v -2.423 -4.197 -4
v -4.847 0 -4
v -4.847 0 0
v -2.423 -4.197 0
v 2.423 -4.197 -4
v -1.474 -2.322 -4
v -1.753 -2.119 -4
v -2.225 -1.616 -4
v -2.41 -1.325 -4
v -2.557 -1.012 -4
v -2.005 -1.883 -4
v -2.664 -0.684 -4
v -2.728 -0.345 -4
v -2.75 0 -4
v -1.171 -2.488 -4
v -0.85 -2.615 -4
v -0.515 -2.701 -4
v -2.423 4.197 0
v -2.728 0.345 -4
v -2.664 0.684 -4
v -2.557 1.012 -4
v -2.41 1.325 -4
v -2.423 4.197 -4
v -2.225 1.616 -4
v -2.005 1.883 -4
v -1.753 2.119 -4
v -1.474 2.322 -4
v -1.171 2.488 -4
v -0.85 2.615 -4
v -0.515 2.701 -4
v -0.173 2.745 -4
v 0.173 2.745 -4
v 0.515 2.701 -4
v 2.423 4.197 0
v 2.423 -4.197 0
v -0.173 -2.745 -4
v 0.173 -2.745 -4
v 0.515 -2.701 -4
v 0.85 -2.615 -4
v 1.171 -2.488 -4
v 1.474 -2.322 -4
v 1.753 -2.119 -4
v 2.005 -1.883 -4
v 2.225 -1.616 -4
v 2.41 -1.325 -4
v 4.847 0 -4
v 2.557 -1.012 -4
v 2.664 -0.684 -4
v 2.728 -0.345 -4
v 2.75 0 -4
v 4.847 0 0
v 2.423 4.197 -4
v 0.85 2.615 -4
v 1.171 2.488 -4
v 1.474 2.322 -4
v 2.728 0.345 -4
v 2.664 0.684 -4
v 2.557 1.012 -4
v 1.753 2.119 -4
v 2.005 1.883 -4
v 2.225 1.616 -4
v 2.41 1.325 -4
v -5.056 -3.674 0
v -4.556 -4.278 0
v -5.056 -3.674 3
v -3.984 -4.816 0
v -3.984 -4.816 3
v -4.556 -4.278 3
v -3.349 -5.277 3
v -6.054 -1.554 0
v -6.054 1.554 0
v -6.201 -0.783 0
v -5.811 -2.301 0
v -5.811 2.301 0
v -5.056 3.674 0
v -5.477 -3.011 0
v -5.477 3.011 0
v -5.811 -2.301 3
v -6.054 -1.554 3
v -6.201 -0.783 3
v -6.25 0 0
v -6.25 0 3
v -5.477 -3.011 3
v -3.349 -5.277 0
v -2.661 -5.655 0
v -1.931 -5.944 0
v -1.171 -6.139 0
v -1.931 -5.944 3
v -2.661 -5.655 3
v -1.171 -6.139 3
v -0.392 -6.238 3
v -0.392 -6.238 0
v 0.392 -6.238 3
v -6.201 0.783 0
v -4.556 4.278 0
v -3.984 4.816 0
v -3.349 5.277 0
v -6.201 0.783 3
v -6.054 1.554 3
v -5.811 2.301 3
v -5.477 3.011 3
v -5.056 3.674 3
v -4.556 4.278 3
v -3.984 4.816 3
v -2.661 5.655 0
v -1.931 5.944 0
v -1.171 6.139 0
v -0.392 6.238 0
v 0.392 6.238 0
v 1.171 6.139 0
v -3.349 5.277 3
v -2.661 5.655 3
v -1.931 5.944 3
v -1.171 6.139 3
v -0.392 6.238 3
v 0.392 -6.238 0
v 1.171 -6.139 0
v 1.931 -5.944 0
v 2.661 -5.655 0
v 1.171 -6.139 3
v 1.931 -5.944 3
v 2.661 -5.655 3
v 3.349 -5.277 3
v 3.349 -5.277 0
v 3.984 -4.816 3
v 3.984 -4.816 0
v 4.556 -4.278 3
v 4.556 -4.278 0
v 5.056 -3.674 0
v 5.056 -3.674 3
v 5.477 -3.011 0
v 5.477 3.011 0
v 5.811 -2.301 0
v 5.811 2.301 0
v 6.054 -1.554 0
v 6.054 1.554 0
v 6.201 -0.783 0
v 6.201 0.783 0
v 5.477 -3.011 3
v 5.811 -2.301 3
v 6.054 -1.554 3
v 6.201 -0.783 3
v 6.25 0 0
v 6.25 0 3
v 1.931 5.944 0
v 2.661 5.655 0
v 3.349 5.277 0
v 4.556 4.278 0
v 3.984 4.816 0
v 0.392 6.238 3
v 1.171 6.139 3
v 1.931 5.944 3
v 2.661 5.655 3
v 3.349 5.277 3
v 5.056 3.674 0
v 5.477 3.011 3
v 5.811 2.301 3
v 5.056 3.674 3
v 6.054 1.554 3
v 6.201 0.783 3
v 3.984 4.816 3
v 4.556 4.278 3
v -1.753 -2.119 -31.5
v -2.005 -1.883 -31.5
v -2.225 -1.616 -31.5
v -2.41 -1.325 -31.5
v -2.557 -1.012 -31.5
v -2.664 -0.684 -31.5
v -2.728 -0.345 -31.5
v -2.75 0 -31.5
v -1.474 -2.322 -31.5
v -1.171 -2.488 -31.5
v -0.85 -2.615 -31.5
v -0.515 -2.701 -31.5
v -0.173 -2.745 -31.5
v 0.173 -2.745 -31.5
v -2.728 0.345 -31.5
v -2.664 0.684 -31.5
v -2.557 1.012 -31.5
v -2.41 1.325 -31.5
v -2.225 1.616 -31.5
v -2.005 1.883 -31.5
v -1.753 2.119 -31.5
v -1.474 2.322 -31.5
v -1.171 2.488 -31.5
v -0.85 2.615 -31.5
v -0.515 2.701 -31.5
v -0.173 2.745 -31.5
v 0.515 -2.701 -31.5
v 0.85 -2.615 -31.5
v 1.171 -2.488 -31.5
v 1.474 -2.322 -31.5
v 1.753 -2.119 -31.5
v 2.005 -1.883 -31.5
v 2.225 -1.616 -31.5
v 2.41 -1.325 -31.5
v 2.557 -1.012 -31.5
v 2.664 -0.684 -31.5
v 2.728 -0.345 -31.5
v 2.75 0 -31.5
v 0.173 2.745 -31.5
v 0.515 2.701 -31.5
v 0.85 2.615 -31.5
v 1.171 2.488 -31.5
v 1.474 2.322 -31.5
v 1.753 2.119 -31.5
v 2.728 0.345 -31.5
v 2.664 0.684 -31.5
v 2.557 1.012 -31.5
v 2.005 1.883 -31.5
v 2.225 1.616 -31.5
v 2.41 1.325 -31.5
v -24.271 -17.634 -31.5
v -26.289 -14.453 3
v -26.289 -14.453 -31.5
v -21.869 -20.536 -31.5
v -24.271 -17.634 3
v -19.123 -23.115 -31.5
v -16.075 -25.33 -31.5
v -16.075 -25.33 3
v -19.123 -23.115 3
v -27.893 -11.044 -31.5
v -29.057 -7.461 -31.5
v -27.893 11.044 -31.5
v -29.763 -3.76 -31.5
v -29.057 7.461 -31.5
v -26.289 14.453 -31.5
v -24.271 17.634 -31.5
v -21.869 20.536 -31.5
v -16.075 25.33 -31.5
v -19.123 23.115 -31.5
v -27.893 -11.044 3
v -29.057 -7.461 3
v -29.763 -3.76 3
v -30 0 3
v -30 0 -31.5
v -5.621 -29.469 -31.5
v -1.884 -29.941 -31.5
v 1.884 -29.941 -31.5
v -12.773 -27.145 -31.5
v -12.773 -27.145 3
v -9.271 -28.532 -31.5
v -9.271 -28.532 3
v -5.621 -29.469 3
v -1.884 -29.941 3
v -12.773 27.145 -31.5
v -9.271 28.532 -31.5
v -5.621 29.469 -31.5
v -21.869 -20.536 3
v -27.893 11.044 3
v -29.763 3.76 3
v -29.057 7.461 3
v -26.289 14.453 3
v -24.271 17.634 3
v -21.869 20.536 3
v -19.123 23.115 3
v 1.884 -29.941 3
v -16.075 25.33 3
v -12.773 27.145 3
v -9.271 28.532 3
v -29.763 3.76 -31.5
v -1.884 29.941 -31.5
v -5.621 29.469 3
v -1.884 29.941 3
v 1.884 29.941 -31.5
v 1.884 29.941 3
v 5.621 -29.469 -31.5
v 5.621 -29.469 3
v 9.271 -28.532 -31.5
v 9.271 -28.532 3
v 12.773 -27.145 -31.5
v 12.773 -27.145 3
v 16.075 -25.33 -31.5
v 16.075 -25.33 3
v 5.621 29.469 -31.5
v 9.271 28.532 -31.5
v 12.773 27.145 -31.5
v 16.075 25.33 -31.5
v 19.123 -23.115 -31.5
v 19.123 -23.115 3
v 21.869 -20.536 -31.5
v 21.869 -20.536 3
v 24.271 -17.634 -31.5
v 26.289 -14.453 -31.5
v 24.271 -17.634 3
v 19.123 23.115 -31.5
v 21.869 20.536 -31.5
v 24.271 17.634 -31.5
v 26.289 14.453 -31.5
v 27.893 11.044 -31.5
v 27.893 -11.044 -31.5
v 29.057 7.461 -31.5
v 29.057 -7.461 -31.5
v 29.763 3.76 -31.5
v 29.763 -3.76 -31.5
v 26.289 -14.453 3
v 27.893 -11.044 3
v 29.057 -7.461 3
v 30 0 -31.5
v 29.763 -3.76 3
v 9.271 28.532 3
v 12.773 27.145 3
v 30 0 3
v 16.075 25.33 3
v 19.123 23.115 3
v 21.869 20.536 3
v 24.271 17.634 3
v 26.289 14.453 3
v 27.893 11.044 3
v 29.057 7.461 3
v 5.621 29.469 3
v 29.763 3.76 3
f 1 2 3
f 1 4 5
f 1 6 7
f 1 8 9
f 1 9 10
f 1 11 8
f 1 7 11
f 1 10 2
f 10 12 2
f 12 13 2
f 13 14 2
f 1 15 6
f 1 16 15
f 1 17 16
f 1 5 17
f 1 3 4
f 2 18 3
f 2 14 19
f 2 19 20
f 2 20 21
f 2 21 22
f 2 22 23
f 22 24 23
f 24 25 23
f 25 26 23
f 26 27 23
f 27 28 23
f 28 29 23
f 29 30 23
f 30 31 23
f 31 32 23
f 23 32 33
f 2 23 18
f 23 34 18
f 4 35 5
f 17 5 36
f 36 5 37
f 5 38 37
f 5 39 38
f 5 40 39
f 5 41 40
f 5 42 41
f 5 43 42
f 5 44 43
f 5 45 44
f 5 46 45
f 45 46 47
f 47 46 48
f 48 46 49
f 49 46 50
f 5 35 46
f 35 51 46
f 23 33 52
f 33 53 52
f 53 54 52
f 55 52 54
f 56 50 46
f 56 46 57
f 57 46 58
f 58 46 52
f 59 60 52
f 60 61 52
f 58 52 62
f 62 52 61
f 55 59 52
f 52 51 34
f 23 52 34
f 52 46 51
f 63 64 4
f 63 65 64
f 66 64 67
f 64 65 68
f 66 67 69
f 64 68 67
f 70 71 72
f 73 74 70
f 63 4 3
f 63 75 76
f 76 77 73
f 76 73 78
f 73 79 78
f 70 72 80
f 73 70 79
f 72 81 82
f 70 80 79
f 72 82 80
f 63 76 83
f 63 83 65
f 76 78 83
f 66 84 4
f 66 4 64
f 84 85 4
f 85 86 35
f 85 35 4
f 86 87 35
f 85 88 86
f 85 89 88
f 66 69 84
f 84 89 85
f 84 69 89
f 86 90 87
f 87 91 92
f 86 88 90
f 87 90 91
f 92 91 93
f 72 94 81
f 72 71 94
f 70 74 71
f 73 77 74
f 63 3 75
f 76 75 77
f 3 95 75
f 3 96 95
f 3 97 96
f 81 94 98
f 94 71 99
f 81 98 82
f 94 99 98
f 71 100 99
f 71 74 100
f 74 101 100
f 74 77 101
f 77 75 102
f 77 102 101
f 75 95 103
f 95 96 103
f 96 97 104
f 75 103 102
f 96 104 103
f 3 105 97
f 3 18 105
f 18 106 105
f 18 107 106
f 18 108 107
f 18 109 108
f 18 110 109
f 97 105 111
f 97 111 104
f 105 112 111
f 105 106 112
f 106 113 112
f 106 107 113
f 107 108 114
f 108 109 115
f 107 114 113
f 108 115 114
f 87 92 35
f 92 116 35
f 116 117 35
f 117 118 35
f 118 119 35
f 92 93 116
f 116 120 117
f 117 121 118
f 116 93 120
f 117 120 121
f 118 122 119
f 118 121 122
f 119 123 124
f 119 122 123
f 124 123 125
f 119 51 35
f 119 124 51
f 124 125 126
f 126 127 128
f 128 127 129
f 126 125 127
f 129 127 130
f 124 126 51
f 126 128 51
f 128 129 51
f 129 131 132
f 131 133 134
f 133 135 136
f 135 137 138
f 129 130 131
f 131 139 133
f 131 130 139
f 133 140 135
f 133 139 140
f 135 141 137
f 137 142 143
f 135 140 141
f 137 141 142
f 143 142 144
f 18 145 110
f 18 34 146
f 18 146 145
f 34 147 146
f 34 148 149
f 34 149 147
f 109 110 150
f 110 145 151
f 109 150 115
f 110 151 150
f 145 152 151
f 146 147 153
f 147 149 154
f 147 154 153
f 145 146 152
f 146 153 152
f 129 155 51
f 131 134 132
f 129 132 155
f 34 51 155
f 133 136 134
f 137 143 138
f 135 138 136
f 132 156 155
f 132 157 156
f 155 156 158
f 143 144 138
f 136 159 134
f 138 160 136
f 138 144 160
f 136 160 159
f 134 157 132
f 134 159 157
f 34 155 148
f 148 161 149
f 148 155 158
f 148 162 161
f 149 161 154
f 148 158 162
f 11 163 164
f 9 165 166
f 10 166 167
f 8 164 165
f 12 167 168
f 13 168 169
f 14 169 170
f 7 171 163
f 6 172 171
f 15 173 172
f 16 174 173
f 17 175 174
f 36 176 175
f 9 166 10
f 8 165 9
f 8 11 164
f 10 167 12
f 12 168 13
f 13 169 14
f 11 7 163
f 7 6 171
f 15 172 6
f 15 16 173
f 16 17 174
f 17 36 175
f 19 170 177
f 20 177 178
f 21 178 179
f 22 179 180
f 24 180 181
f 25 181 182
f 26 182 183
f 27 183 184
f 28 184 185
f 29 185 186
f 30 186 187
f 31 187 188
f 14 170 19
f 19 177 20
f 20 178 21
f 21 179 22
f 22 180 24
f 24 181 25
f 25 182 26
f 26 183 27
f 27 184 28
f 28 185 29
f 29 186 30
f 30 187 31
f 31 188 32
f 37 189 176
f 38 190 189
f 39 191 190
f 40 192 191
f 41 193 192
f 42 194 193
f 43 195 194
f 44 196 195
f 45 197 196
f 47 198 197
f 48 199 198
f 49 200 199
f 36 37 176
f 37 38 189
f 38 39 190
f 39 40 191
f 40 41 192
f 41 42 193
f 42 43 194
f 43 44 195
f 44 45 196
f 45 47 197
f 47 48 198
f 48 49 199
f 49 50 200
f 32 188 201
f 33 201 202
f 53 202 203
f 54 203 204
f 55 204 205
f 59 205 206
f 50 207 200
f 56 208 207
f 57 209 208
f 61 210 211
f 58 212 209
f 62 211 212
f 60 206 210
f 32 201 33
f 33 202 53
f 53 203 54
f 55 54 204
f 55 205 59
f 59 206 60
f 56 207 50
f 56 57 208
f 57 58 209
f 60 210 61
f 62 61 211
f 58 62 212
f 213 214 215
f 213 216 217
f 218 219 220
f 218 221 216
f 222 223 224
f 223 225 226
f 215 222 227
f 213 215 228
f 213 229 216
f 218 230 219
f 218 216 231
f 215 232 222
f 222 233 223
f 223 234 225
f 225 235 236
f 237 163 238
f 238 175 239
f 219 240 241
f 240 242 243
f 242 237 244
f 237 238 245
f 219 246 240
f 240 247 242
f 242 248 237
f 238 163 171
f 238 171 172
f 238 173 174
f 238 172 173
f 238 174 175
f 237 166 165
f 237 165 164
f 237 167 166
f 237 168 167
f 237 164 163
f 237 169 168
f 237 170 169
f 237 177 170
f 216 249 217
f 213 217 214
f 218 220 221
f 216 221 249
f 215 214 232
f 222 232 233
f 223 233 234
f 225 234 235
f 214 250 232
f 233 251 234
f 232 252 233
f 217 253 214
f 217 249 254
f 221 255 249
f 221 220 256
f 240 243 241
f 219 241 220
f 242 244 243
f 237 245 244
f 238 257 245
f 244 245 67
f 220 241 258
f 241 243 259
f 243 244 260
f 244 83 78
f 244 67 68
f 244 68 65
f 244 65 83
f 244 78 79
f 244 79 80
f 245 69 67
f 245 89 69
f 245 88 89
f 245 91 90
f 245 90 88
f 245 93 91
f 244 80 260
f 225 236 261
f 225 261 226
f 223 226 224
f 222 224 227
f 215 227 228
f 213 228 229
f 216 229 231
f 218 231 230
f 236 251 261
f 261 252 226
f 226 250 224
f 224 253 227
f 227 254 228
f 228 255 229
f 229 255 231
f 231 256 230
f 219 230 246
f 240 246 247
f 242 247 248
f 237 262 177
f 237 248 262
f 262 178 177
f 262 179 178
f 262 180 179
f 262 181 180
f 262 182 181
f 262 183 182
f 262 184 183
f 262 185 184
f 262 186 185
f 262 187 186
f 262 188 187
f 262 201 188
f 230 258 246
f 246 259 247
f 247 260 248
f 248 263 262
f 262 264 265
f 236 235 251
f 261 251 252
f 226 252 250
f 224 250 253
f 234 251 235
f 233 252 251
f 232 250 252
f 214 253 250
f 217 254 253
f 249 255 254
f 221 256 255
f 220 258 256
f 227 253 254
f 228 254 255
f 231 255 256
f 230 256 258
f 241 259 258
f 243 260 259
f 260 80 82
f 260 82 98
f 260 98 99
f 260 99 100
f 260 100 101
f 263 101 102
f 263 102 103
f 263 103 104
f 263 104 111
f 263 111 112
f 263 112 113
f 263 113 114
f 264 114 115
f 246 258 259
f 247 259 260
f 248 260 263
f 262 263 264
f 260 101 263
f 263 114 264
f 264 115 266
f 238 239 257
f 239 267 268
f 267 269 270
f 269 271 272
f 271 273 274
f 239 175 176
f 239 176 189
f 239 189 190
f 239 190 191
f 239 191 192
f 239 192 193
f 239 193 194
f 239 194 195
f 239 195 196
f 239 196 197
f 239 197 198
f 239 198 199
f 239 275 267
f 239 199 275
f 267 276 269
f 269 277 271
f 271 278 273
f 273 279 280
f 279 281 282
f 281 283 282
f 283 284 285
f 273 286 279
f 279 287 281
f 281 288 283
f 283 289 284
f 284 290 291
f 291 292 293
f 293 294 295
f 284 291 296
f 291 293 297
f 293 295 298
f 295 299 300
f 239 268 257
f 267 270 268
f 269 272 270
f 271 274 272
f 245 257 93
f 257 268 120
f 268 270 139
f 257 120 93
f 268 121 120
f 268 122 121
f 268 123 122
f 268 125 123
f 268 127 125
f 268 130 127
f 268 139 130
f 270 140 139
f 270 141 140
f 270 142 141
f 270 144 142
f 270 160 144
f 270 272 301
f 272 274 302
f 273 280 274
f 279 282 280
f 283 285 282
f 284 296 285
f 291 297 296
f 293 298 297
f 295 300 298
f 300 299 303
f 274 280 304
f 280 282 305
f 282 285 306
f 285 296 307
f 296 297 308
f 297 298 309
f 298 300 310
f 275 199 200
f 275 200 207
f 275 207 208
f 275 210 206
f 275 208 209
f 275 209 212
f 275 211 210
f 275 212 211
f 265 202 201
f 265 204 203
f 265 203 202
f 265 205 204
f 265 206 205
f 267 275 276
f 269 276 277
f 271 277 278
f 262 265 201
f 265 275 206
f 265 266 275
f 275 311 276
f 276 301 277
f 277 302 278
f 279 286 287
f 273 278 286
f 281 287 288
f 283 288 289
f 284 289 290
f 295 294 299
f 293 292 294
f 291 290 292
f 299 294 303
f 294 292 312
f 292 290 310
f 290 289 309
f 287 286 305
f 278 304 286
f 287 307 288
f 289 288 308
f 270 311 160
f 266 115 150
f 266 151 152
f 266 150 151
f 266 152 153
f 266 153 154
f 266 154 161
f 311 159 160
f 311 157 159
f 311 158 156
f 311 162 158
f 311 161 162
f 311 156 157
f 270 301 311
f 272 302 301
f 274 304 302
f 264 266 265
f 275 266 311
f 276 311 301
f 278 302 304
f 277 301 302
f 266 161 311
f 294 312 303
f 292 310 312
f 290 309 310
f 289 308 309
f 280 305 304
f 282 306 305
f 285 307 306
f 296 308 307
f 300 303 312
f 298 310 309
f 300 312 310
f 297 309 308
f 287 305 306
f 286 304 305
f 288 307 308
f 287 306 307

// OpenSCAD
$fn = 50;


difference() {
	union() {
		translate(v = [0, 0, -31.5000000000]) {
			cylinder(h = 34.5000000000, r = 30.0000000000);
		}
	}
	union() {
		translate(v = [0, 0, 0]) {
			rotate(a = [0, 0, 0]) {
				difference() {
					union() {
						translate(v = [0, 0, -4]) {
							linear_extrude(height = 4) {
								polygon(points = [[4.8468000000, 0.0000000000], [2.4234000000, 4.1974519271], [-2.4234000000, 4.1974519271], [-4.8468000000, 0.0000000000], [-2.4234000000, -4.1974519271], [2.4234000000, -4.1974519271]]);
							}
						}
					}
					union();
				}
			}
		}
		#cylinder(h = 3, r = 6.2500000000);
		#translate(v = [0, 0, -100.0000000000]) {
			cylinder(h = 200, r = 2.7500000000);
		}
	}
}
